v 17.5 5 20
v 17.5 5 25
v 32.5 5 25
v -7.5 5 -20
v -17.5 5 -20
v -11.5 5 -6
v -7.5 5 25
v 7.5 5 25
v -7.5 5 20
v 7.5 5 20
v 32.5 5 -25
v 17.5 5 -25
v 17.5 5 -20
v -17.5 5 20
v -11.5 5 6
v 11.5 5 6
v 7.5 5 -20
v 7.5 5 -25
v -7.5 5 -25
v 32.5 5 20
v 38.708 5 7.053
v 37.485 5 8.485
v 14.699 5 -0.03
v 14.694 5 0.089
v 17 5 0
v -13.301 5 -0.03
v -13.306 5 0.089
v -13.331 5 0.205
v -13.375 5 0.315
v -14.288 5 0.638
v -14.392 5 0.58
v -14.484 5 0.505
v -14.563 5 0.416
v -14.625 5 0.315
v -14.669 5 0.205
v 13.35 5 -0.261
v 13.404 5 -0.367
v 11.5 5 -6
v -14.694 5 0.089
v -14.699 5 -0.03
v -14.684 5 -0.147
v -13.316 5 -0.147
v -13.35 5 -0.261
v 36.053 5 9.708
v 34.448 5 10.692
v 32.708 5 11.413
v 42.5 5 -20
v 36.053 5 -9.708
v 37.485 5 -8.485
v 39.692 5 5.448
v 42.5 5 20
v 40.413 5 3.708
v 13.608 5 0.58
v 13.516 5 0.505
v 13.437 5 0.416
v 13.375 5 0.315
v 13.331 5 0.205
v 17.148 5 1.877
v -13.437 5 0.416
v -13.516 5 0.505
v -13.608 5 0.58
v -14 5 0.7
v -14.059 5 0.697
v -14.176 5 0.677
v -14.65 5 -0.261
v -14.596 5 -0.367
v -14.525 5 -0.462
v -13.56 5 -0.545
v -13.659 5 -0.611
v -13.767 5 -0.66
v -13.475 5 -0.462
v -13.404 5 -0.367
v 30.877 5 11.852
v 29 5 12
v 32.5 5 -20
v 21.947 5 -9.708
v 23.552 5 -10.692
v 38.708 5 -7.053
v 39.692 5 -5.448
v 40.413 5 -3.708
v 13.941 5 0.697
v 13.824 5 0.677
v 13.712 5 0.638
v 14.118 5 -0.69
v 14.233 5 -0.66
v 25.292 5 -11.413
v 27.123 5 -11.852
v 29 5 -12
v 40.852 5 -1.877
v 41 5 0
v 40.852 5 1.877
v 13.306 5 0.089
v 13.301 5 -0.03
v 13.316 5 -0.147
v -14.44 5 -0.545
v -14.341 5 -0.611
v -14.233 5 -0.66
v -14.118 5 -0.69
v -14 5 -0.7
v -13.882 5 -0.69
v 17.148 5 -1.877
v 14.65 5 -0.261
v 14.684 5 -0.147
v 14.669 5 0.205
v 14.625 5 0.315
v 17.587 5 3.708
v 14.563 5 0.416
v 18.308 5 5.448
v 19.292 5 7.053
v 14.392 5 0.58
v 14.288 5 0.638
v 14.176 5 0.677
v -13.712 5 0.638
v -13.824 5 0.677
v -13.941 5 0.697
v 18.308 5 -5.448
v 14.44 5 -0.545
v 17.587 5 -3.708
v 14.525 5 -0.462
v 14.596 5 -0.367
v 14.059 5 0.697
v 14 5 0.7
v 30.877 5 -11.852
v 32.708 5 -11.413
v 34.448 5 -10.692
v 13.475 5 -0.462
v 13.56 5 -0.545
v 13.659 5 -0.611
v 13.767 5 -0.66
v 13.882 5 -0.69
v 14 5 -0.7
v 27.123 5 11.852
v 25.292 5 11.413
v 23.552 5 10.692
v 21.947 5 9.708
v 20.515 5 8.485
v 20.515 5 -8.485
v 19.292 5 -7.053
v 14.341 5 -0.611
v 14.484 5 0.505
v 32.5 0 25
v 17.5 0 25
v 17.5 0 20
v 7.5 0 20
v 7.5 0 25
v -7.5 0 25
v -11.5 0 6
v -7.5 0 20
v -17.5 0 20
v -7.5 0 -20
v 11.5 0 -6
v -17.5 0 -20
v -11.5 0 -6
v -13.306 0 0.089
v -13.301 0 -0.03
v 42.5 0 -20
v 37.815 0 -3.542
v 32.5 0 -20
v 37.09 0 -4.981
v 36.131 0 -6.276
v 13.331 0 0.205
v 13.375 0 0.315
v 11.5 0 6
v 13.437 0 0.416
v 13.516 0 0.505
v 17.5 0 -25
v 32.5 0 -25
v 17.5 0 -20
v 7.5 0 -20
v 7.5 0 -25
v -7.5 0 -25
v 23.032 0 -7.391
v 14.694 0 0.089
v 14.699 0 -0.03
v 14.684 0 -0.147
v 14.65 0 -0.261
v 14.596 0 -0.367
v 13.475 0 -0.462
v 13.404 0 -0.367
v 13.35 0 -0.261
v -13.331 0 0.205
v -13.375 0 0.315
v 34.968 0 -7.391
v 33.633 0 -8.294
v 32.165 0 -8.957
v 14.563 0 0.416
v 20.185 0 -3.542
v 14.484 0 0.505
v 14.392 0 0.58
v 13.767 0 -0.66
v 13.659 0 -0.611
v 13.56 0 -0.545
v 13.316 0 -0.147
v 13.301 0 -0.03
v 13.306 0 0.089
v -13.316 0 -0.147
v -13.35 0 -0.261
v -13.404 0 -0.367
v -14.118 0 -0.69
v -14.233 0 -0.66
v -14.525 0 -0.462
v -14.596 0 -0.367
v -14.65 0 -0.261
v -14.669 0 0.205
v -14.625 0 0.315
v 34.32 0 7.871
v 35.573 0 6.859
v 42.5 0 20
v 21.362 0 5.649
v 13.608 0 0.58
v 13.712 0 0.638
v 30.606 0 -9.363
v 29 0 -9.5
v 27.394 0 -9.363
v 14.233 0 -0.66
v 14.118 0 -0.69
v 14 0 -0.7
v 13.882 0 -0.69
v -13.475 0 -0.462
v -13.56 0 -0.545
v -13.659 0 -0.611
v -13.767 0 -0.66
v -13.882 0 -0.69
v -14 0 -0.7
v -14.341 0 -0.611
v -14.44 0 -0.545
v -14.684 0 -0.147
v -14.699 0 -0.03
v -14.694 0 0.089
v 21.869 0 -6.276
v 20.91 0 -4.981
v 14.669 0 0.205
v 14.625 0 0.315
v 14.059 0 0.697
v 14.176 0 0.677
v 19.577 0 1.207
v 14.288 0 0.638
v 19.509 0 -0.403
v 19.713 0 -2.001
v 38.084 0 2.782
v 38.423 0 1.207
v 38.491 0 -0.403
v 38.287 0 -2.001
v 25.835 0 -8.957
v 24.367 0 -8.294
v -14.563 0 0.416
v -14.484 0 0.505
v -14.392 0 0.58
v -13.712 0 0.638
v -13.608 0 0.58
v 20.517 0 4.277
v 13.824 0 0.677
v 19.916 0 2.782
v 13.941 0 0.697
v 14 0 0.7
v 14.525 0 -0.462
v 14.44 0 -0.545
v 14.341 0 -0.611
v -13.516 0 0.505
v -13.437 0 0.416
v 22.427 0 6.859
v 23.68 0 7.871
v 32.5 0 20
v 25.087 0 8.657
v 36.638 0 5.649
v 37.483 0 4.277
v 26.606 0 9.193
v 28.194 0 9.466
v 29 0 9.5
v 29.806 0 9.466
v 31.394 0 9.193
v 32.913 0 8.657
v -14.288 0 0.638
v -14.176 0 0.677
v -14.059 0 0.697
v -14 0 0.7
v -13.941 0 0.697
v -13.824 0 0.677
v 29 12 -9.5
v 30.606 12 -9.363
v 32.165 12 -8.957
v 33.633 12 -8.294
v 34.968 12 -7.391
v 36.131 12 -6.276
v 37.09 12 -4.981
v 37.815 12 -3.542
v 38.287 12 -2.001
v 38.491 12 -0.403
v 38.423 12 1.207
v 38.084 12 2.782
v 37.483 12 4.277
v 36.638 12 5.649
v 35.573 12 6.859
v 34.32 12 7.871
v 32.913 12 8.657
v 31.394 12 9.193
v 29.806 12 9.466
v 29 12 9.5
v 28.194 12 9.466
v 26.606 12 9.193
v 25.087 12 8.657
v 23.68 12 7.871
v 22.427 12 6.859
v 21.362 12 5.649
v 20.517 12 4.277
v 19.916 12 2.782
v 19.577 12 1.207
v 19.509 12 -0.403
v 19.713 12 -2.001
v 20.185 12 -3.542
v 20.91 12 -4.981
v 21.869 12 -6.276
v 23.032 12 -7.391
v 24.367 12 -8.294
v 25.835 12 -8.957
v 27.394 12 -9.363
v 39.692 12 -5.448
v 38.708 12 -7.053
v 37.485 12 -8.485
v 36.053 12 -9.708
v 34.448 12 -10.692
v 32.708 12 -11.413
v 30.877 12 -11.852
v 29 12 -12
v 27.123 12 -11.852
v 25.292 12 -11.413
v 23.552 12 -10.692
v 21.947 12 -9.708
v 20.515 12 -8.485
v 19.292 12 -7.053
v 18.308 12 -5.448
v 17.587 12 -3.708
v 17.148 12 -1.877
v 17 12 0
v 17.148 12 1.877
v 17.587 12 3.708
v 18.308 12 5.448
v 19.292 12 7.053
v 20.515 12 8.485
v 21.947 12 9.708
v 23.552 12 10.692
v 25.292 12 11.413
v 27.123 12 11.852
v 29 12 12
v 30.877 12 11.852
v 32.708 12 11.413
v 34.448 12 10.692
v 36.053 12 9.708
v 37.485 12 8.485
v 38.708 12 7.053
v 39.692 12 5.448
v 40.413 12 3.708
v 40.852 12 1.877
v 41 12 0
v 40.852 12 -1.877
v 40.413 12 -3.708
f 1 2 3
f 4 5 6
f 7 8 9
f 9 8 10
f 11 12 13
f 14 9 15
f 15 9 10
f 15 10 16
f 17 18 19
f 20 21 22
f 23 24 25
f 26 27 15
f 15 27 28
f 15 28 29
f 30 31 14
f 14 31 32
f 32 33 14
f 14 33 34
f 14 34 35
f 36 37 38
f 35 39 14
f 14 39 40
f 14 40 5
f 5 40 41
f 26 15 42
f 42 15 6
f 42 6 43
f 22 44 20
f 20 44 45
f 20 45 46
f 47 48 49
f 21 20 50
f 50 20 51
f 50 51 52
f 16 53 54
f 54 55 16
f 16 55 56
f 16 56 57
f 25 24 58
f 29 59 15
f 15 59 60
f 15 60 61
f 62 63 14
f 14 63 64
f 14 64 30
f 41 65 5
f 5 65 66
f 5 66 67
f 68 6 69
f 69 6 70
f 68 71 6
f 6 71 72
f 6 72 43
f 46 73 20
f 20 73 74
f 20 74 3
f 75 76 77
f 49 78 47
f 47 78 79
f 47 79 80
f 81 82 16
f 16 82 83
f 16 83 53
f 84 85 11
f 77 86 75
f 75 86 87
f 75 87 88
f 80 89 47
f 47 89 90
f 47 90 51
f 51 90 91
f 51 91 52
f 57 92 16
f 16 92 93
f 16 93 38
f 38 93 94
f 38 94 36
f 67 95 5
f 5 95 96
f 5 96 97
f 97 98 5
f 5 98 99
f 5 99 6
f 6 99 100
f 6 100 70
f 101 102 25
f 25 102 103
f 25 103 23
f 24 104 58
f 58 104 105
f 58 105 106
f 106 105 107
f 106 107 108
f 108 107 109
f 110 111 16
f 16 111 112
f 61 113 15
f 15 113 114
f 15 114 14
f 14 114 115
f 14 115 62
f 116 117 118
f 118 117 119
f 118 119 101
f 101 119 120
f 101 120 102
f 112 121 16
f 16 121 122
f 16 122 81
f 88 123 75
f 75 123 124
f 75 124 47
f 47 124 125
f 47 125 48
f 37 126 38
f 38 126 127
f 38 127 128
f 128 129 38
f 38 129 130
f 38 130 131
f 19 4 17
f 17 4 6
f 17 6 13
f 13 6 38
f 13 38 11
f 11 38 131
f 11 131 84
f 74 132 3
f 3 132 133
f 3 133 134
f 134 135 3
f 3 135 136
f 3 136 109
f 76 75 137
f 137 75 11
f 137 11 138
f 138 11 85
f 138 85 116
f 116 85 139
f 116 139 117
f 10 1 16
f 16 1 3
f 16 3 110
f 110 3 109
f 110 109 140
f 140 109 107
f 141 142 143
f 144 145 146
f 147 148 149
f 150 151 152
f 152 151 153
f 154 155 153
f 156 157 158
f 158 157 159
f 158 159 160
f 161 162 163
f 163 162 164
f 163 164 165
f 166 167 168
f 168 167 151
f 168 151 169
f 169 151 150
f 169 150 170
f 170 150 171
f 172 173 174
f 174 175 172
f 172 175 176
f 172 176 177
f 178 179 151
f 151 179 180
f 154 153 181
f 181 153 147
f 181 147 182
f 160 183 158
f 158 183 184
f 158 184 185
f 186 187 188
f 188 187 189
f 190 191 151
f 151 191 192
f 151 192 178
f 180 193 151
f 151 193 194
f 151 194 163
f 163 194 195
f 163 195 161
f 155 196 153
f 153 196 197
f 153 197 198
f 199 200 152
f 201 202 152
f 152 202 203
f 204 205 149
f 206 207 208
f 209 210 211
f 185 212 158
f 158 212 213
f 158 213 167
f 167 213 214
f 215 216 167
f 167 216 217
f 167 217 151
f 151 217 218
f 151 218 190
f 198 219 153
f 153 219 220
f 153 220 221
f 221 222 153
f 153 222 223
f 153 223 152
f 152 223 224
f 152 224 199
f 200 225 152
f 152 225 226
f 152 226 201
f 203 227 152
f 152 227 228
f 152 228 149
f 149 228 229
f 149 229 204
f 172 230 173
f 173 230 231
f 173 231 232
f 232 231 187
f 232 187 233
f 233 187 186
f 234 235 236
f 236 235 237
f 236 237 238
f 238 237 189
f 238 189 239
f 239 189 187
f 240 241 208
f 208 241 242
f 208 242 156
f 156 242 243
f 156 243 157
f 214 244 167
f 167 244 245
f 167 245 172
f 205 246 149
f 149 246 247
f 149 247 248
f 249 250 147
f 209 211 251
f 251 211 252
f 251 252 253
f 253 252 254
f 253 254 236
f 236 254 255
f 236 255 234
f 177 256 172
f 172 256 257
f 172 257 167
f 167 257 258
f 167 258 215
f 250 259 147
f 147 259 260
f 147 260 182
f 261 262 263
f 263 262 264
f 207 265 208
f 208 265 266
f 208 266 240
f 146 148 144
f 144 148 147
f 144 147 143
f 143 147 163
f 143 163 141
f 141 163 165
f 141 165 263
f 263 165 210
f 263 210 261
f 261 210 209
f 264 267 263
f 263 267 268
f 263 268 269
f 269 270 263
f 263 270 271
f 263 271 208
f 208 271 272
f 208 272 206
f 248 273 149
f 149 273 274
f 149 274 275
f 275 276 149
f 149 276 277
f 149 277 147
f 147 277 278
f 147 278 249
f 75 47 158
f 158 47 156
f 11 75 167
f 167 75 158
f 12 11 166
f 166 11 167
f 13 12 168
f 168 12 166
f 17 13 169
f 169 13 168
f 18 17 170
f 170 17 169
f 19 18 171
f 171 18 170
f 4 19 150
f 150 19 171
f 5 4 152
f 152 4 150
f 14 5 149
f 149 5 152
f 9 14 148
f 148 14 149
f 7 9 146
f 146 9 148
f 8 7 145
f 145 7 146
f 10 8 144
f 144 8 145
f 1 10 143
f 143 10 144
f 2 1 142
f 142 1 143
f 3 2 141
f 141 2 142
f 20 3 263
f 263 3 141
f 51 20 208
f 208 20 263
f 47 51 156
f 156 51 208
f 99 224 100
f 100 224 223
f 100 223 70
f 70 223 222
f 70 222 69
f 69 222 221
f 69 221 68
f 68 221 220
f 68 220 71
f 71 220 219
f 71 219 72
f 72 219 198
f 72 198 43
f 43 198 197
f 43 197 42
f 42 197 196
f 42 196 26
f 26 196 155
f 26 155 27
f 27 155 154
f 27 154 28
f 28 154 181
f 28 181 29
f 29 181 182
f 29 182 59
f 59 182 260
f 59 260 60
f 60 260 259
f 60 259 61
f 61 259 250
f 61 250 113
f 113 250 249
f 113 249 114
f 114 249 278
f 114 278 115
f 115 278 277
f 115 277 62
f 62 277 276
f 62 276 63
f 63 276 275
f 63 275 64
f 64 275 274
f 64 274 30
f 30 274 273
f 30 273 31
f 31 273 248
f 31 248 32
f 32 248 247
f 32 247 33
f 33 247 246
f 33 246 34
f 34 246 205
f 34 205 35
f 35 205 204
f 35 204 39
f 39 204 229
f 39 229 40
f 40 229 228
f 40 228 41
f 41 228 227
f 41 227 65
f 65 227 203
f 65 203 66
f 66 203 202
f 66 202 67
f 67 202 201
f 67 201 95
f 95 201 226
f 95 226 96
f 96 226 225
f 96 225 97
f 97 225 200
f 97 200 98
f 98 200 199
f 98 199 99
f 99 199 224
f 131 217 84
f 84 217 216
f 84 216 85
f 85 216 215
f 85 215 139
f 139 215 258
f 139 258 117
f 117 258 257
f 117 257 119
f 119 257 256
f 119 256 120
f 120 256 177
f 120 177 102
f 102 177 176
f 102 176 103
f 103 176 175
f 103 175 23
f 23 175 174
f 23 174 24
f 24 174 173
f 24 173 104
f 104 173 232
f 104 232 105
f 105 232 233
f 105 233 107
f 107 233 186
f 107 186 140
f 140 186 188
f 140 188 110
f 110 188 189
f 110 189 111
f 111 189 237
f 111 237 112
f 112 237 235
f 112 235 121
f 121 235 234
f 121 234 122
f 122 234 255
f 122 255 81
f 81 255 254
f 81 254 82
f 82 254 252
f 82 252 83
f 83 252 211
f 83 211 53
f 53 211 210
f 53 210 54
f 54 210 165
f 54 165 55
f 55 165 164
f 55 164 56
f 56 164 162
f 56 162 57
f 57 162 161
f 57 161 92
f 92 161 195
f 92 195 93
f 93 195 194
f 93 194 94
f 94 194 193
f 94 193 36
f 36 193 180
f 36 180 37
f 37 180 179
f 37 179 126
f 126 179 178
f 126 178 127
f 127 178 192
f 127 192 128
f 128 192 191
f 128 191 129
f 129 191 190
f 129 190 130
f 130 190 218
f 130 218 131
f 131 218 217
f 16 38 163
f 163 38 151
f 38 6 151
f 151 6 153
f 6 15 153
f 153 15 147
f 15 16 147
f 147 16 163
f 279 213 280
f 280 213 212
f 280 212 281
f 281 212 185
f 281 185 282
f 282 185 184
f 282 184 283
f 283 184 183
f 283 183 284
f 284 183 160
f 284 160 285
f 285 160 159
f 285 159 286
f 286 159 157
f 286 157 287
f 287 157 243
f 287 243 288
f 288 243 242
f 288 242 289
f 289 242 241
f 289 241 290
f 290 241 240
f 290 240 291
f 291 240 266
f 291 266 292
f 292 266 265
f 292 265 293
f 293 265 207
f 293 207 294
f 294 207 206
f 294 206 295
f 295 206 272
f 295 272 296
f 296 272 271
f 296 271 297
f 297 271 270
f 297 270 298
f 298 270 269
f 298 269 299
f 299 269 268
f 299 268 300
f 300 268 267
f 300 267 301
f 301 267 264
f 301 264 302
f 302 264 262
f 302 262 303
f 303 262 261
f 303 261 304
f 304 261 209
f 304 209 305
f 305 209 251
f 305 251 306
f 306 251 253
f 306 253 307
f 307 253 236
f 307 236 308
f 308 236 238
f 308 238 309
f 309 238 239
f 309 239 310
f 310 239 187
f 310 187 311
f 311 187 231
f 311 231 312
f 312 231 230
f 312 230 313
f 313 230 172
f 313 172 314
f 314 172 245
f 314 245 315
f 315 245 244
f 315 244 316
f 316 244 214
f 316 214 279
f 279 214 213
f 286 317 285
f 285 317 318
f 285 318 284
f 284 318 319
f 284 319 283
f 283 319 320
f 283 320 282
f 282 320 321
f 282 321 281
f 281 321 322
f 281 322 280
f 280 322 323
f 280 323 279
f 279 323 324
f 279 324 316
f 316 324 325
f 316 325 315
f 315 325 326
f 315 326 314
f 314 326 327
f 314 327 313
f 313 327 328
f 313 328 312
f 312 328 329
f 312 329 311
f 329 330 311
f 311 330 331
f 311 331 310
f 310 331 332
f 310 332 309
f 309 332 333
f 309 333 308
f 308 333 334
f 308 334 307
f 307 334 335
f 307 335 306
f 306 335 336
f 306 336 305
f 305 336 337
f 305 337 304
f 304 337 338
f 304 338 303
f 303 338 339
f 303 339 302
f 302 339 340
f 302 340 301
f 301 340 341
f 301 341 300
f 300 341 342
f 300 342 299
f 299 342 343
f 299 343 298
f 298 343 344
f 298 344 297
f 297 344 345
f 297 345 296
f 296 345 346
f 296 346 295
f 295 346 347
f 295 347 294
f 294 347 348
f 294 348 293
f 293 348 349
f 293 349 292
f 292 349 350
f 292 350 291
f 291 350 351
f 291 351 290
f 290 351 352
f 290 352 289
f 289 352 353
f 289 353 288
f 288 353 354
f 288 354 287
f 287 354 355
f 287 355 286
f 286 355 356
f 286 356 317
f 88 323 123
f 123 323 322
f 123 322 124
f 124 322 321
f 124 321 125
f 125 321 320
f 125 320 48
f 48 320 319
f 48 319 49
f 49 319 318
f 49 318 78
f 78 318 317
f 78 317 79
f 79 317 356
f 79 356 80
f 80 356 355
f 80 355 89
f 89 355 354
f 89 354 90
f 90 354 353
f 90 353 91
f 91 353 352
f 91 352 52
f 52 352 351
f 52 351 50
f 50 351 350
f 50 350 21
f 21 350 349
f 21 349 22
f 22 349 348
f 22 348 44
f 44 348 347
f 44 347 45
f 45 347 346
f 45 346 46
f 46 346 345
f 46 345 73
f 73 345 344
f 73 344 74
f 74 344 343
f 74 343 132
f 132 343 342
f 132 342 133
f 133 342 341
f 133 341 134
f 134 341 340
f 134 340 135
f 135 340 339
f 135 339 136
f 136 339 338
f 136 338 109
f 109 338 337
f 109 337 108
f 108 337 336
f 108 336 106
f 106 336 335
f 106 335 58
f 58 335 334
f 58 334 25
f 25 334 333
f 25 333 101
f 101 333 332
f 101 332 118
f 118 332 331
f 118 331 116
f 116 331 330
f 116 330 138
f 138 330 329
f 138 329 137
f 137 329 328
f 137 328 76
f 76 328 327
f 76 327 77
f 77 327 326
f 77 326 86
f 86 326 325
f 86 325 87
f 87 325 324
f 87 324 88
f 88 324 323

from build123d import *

# Parameters (mm, degrees)
SKETCH1_R           = 0.7
SKETCH1_R_2         = 9.5
SKETCH1_W           = 23
SKETCH1_H           = 12
BOSS_EXTRUDE1_DEPTH = 5
SKETCH2_R           = 12
SKETCH2_R_2         = 9.5
BOSS_EXTRUDE2_DEPTH = 7


with BuildPart() as part:
    # Sketch1 → Boss-Extrude1 (new body)
    with BuildSketch(Plane(origin=(0, 0, 0), x_dir=(1, 0, 0), z_dir=(0, 1, 0))):
        Polygon((7.5, 20), (17.5, 20), (17.5, 25), (32.5, 25), (32.5, 20), (42.5, 20), (42.5, -20), (32.5, -20), (32.5, -25), (17.5, -25), (17.5, -20), (7.5, -20), (7.5, -25), (-7.5, -25), (-7.5, -20), (-17.5, -20), (-17.5, 20), (-7.5, 20), (-7.5, 25), (7.5, 25), align=None)
        with Locations(Location((-14, 0, 0), (0, 0, 270))):
            Circle(SKETCH1_R, mode=Mode.SUBTRACT)
        with Locations(Location((14, 0, 0), (0, 0, 270))):
            Circle(SKETCH1_R, mode=Mode.SUBTRACT)
        with Locations(Location((29, 0, 0), (0, 0, 270))):
            Circle(SKETCH1_R_2, mode=Mode.SUBTRACT)
        Rectangle(SKETCH1_W, SKETCH1_H, mode=Mode.SUBTRACT)
    extrude(amount=BOSS_EXTRUDE1_DEPTH)

    # Sketch2 → Boss-Extrude2 (add)
    with BuildSketch(Plane(origin=(0, 5, 0), x_dir=(1, 0, 0), z_dir=(0, 1, 0))):
        with Locations(Location((29, 0, 0), (0, 0, 90))):
            Circle(SKETCH2_R)
        with Locations(Location((29, 0, 0), (0, 0, 270))):
            Circle(SKETCH2_R_2, mode=Mode.SUBTRACT)
    extrude(amount=BOSS_EXTRUDE2_DEPTH)


solid = part.part
